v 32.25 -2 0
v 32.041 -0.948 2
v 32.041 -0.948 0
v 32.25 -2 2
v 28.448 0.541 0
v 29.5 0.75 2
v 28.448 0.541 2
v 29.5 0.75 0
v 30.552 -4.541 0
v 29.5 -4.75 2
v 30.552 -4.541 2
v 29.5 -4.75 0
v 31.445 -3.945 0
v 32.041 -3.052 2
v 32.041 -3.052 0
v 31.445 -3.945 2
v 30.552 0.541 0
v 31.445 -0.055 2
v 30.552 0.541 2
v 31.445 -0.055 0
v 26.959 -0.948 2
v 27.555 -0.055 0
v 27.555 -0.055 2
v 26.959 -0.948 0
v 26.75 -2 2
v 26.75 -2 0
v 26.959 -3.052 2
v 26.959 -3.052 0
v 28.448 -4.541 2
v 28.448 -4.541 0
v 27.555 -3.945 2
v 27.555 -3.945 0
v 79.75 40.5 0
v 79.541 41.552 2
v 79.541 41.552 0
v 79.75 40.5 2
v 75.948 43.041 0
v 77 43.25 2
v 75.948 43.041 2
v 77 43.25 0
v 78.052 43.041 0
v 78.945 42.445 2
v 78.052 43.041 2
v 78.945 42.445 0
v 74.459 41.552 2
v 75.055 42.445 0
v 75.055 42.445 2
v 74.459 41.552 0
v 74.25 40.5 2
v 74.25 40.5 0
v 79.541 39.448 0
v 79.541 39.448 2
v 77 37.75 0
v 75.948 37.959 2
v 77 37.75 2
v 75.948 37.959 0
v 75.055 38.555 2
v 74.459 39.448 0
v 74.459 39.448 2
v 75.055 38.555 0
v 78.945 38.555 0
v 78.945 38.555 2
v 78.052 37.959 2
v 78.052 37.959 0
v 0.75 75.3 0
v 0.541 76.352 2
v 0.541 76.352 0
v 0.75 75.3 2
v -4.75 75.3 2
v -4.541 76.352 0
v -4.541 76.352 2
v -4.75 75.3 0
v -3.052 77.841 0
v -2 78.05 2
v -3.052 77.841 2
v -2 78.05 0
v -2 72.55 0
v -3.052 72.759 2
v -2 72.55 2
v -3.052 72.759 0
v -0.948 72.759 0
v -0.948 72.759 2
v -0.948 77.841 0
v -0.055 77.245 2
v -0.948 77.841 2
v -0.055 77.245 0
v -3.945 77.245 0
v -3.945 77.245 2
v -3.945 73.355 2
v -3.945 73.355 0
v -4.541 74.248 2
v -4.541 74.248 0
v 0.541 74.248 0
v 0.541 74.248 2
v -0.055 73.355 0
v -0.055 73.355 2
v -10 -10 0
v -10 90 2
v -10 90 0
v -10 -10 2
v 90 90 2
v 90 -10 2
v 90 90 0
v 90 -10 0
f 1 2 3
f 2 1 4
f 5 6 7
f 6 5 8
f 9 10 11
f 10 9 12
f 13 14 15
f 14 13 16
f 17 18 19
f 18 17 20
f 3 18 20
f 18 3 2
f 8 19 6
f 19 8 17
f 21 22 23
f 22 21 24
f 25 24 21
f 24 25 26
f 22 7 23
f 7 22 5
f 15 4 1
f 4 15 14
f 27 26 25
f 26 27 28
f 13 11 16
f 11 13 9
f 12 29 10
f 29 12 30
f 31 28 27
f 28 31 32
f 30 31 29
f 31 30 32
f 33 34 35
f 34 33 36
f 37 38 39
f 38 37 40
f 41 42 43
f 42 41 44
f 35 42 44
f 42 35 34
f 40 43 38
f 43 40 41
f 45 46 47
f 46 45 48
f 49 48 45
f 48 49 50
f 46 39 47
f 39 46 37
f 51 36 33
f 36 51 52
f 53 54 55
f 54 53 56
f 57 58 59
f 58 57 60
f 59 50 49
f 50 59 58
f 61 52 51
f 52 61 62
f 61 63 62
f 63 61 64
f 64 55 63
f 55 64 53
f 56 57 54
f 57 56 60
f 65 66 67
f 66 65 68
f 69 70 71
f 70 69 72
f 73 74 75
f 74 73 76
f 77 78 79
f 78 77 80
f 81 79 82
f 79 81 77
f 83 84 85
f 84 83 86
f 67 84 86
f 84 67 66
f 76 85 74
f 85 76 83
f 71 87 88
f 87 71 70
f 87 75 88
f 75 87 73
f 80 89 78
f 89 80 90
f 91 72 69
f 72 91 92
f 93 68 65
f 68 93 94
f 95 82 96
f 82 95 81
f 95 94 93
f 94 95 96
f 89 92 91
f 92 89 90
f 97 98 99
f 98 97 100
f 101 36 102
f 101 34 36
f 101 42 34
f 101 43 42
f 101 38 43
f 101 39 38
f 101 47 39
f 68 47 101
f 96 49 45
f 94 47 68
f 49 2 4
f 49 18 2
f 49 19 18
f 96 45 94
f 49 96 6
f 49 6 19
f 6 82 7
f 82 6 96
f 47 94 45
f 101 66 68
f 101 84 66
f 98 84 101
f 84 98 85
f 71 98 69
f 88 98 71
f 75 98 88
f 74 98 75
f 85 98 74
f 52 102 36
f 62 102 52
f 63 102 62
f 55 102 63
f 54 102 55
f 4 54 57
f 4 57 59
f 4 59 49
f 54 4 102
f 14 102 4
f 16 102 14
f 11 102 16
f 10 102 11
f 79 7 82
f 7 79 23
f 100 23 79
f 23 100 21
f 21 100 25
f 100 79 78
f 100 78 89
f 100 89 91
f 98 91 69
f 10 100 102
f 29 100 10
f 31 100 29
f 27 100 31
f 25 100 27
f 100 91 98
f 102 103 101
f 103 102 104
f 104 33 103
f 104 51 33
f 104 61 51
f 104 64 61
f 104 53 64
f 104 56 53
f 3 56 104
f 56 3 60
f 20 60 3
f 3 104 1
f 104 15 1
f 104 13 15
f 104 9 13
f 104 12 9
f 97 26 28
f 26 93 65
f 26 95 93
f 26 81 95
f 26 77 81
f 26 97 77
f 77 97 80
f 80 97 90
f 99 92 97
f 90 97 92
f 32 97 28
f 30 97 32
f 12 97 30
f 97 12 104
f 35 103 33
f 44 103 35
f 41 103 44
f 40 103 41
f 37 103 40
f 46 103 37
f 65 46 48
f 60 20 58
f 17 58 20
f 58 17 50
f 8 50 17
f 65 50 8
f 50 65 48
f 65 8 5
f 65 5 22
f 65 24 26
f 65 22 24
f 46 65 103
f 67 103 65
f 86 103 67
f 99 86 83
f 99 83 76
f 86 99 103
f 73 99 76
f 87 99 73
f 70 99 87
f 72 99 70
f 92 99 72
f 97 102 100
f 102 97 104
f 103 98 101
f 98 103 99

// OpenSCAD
// file: hole-template.scad
// This is just the holes. it had some other measurements, but these are the ones that matter.

color("green") {
    translate([75-45.5, -2]) cylinder(1, d=5.5, $fn=16, center=true);
    translate([75+2, 40.5]) cylinder(1, d=5.5, $fn=16, center=true);
    translate([-2, 75.3]) cylinder(1, d=5.5, $fn=16, center=true);
}
// main file
difference() {
    translate([-10,-10,0]) cube([100, 100, 2]);
    scale ([1,1,5]) {
        include <hole-template.scad>
    }
}

$vpd = 590; // makes viewport === 1:1
